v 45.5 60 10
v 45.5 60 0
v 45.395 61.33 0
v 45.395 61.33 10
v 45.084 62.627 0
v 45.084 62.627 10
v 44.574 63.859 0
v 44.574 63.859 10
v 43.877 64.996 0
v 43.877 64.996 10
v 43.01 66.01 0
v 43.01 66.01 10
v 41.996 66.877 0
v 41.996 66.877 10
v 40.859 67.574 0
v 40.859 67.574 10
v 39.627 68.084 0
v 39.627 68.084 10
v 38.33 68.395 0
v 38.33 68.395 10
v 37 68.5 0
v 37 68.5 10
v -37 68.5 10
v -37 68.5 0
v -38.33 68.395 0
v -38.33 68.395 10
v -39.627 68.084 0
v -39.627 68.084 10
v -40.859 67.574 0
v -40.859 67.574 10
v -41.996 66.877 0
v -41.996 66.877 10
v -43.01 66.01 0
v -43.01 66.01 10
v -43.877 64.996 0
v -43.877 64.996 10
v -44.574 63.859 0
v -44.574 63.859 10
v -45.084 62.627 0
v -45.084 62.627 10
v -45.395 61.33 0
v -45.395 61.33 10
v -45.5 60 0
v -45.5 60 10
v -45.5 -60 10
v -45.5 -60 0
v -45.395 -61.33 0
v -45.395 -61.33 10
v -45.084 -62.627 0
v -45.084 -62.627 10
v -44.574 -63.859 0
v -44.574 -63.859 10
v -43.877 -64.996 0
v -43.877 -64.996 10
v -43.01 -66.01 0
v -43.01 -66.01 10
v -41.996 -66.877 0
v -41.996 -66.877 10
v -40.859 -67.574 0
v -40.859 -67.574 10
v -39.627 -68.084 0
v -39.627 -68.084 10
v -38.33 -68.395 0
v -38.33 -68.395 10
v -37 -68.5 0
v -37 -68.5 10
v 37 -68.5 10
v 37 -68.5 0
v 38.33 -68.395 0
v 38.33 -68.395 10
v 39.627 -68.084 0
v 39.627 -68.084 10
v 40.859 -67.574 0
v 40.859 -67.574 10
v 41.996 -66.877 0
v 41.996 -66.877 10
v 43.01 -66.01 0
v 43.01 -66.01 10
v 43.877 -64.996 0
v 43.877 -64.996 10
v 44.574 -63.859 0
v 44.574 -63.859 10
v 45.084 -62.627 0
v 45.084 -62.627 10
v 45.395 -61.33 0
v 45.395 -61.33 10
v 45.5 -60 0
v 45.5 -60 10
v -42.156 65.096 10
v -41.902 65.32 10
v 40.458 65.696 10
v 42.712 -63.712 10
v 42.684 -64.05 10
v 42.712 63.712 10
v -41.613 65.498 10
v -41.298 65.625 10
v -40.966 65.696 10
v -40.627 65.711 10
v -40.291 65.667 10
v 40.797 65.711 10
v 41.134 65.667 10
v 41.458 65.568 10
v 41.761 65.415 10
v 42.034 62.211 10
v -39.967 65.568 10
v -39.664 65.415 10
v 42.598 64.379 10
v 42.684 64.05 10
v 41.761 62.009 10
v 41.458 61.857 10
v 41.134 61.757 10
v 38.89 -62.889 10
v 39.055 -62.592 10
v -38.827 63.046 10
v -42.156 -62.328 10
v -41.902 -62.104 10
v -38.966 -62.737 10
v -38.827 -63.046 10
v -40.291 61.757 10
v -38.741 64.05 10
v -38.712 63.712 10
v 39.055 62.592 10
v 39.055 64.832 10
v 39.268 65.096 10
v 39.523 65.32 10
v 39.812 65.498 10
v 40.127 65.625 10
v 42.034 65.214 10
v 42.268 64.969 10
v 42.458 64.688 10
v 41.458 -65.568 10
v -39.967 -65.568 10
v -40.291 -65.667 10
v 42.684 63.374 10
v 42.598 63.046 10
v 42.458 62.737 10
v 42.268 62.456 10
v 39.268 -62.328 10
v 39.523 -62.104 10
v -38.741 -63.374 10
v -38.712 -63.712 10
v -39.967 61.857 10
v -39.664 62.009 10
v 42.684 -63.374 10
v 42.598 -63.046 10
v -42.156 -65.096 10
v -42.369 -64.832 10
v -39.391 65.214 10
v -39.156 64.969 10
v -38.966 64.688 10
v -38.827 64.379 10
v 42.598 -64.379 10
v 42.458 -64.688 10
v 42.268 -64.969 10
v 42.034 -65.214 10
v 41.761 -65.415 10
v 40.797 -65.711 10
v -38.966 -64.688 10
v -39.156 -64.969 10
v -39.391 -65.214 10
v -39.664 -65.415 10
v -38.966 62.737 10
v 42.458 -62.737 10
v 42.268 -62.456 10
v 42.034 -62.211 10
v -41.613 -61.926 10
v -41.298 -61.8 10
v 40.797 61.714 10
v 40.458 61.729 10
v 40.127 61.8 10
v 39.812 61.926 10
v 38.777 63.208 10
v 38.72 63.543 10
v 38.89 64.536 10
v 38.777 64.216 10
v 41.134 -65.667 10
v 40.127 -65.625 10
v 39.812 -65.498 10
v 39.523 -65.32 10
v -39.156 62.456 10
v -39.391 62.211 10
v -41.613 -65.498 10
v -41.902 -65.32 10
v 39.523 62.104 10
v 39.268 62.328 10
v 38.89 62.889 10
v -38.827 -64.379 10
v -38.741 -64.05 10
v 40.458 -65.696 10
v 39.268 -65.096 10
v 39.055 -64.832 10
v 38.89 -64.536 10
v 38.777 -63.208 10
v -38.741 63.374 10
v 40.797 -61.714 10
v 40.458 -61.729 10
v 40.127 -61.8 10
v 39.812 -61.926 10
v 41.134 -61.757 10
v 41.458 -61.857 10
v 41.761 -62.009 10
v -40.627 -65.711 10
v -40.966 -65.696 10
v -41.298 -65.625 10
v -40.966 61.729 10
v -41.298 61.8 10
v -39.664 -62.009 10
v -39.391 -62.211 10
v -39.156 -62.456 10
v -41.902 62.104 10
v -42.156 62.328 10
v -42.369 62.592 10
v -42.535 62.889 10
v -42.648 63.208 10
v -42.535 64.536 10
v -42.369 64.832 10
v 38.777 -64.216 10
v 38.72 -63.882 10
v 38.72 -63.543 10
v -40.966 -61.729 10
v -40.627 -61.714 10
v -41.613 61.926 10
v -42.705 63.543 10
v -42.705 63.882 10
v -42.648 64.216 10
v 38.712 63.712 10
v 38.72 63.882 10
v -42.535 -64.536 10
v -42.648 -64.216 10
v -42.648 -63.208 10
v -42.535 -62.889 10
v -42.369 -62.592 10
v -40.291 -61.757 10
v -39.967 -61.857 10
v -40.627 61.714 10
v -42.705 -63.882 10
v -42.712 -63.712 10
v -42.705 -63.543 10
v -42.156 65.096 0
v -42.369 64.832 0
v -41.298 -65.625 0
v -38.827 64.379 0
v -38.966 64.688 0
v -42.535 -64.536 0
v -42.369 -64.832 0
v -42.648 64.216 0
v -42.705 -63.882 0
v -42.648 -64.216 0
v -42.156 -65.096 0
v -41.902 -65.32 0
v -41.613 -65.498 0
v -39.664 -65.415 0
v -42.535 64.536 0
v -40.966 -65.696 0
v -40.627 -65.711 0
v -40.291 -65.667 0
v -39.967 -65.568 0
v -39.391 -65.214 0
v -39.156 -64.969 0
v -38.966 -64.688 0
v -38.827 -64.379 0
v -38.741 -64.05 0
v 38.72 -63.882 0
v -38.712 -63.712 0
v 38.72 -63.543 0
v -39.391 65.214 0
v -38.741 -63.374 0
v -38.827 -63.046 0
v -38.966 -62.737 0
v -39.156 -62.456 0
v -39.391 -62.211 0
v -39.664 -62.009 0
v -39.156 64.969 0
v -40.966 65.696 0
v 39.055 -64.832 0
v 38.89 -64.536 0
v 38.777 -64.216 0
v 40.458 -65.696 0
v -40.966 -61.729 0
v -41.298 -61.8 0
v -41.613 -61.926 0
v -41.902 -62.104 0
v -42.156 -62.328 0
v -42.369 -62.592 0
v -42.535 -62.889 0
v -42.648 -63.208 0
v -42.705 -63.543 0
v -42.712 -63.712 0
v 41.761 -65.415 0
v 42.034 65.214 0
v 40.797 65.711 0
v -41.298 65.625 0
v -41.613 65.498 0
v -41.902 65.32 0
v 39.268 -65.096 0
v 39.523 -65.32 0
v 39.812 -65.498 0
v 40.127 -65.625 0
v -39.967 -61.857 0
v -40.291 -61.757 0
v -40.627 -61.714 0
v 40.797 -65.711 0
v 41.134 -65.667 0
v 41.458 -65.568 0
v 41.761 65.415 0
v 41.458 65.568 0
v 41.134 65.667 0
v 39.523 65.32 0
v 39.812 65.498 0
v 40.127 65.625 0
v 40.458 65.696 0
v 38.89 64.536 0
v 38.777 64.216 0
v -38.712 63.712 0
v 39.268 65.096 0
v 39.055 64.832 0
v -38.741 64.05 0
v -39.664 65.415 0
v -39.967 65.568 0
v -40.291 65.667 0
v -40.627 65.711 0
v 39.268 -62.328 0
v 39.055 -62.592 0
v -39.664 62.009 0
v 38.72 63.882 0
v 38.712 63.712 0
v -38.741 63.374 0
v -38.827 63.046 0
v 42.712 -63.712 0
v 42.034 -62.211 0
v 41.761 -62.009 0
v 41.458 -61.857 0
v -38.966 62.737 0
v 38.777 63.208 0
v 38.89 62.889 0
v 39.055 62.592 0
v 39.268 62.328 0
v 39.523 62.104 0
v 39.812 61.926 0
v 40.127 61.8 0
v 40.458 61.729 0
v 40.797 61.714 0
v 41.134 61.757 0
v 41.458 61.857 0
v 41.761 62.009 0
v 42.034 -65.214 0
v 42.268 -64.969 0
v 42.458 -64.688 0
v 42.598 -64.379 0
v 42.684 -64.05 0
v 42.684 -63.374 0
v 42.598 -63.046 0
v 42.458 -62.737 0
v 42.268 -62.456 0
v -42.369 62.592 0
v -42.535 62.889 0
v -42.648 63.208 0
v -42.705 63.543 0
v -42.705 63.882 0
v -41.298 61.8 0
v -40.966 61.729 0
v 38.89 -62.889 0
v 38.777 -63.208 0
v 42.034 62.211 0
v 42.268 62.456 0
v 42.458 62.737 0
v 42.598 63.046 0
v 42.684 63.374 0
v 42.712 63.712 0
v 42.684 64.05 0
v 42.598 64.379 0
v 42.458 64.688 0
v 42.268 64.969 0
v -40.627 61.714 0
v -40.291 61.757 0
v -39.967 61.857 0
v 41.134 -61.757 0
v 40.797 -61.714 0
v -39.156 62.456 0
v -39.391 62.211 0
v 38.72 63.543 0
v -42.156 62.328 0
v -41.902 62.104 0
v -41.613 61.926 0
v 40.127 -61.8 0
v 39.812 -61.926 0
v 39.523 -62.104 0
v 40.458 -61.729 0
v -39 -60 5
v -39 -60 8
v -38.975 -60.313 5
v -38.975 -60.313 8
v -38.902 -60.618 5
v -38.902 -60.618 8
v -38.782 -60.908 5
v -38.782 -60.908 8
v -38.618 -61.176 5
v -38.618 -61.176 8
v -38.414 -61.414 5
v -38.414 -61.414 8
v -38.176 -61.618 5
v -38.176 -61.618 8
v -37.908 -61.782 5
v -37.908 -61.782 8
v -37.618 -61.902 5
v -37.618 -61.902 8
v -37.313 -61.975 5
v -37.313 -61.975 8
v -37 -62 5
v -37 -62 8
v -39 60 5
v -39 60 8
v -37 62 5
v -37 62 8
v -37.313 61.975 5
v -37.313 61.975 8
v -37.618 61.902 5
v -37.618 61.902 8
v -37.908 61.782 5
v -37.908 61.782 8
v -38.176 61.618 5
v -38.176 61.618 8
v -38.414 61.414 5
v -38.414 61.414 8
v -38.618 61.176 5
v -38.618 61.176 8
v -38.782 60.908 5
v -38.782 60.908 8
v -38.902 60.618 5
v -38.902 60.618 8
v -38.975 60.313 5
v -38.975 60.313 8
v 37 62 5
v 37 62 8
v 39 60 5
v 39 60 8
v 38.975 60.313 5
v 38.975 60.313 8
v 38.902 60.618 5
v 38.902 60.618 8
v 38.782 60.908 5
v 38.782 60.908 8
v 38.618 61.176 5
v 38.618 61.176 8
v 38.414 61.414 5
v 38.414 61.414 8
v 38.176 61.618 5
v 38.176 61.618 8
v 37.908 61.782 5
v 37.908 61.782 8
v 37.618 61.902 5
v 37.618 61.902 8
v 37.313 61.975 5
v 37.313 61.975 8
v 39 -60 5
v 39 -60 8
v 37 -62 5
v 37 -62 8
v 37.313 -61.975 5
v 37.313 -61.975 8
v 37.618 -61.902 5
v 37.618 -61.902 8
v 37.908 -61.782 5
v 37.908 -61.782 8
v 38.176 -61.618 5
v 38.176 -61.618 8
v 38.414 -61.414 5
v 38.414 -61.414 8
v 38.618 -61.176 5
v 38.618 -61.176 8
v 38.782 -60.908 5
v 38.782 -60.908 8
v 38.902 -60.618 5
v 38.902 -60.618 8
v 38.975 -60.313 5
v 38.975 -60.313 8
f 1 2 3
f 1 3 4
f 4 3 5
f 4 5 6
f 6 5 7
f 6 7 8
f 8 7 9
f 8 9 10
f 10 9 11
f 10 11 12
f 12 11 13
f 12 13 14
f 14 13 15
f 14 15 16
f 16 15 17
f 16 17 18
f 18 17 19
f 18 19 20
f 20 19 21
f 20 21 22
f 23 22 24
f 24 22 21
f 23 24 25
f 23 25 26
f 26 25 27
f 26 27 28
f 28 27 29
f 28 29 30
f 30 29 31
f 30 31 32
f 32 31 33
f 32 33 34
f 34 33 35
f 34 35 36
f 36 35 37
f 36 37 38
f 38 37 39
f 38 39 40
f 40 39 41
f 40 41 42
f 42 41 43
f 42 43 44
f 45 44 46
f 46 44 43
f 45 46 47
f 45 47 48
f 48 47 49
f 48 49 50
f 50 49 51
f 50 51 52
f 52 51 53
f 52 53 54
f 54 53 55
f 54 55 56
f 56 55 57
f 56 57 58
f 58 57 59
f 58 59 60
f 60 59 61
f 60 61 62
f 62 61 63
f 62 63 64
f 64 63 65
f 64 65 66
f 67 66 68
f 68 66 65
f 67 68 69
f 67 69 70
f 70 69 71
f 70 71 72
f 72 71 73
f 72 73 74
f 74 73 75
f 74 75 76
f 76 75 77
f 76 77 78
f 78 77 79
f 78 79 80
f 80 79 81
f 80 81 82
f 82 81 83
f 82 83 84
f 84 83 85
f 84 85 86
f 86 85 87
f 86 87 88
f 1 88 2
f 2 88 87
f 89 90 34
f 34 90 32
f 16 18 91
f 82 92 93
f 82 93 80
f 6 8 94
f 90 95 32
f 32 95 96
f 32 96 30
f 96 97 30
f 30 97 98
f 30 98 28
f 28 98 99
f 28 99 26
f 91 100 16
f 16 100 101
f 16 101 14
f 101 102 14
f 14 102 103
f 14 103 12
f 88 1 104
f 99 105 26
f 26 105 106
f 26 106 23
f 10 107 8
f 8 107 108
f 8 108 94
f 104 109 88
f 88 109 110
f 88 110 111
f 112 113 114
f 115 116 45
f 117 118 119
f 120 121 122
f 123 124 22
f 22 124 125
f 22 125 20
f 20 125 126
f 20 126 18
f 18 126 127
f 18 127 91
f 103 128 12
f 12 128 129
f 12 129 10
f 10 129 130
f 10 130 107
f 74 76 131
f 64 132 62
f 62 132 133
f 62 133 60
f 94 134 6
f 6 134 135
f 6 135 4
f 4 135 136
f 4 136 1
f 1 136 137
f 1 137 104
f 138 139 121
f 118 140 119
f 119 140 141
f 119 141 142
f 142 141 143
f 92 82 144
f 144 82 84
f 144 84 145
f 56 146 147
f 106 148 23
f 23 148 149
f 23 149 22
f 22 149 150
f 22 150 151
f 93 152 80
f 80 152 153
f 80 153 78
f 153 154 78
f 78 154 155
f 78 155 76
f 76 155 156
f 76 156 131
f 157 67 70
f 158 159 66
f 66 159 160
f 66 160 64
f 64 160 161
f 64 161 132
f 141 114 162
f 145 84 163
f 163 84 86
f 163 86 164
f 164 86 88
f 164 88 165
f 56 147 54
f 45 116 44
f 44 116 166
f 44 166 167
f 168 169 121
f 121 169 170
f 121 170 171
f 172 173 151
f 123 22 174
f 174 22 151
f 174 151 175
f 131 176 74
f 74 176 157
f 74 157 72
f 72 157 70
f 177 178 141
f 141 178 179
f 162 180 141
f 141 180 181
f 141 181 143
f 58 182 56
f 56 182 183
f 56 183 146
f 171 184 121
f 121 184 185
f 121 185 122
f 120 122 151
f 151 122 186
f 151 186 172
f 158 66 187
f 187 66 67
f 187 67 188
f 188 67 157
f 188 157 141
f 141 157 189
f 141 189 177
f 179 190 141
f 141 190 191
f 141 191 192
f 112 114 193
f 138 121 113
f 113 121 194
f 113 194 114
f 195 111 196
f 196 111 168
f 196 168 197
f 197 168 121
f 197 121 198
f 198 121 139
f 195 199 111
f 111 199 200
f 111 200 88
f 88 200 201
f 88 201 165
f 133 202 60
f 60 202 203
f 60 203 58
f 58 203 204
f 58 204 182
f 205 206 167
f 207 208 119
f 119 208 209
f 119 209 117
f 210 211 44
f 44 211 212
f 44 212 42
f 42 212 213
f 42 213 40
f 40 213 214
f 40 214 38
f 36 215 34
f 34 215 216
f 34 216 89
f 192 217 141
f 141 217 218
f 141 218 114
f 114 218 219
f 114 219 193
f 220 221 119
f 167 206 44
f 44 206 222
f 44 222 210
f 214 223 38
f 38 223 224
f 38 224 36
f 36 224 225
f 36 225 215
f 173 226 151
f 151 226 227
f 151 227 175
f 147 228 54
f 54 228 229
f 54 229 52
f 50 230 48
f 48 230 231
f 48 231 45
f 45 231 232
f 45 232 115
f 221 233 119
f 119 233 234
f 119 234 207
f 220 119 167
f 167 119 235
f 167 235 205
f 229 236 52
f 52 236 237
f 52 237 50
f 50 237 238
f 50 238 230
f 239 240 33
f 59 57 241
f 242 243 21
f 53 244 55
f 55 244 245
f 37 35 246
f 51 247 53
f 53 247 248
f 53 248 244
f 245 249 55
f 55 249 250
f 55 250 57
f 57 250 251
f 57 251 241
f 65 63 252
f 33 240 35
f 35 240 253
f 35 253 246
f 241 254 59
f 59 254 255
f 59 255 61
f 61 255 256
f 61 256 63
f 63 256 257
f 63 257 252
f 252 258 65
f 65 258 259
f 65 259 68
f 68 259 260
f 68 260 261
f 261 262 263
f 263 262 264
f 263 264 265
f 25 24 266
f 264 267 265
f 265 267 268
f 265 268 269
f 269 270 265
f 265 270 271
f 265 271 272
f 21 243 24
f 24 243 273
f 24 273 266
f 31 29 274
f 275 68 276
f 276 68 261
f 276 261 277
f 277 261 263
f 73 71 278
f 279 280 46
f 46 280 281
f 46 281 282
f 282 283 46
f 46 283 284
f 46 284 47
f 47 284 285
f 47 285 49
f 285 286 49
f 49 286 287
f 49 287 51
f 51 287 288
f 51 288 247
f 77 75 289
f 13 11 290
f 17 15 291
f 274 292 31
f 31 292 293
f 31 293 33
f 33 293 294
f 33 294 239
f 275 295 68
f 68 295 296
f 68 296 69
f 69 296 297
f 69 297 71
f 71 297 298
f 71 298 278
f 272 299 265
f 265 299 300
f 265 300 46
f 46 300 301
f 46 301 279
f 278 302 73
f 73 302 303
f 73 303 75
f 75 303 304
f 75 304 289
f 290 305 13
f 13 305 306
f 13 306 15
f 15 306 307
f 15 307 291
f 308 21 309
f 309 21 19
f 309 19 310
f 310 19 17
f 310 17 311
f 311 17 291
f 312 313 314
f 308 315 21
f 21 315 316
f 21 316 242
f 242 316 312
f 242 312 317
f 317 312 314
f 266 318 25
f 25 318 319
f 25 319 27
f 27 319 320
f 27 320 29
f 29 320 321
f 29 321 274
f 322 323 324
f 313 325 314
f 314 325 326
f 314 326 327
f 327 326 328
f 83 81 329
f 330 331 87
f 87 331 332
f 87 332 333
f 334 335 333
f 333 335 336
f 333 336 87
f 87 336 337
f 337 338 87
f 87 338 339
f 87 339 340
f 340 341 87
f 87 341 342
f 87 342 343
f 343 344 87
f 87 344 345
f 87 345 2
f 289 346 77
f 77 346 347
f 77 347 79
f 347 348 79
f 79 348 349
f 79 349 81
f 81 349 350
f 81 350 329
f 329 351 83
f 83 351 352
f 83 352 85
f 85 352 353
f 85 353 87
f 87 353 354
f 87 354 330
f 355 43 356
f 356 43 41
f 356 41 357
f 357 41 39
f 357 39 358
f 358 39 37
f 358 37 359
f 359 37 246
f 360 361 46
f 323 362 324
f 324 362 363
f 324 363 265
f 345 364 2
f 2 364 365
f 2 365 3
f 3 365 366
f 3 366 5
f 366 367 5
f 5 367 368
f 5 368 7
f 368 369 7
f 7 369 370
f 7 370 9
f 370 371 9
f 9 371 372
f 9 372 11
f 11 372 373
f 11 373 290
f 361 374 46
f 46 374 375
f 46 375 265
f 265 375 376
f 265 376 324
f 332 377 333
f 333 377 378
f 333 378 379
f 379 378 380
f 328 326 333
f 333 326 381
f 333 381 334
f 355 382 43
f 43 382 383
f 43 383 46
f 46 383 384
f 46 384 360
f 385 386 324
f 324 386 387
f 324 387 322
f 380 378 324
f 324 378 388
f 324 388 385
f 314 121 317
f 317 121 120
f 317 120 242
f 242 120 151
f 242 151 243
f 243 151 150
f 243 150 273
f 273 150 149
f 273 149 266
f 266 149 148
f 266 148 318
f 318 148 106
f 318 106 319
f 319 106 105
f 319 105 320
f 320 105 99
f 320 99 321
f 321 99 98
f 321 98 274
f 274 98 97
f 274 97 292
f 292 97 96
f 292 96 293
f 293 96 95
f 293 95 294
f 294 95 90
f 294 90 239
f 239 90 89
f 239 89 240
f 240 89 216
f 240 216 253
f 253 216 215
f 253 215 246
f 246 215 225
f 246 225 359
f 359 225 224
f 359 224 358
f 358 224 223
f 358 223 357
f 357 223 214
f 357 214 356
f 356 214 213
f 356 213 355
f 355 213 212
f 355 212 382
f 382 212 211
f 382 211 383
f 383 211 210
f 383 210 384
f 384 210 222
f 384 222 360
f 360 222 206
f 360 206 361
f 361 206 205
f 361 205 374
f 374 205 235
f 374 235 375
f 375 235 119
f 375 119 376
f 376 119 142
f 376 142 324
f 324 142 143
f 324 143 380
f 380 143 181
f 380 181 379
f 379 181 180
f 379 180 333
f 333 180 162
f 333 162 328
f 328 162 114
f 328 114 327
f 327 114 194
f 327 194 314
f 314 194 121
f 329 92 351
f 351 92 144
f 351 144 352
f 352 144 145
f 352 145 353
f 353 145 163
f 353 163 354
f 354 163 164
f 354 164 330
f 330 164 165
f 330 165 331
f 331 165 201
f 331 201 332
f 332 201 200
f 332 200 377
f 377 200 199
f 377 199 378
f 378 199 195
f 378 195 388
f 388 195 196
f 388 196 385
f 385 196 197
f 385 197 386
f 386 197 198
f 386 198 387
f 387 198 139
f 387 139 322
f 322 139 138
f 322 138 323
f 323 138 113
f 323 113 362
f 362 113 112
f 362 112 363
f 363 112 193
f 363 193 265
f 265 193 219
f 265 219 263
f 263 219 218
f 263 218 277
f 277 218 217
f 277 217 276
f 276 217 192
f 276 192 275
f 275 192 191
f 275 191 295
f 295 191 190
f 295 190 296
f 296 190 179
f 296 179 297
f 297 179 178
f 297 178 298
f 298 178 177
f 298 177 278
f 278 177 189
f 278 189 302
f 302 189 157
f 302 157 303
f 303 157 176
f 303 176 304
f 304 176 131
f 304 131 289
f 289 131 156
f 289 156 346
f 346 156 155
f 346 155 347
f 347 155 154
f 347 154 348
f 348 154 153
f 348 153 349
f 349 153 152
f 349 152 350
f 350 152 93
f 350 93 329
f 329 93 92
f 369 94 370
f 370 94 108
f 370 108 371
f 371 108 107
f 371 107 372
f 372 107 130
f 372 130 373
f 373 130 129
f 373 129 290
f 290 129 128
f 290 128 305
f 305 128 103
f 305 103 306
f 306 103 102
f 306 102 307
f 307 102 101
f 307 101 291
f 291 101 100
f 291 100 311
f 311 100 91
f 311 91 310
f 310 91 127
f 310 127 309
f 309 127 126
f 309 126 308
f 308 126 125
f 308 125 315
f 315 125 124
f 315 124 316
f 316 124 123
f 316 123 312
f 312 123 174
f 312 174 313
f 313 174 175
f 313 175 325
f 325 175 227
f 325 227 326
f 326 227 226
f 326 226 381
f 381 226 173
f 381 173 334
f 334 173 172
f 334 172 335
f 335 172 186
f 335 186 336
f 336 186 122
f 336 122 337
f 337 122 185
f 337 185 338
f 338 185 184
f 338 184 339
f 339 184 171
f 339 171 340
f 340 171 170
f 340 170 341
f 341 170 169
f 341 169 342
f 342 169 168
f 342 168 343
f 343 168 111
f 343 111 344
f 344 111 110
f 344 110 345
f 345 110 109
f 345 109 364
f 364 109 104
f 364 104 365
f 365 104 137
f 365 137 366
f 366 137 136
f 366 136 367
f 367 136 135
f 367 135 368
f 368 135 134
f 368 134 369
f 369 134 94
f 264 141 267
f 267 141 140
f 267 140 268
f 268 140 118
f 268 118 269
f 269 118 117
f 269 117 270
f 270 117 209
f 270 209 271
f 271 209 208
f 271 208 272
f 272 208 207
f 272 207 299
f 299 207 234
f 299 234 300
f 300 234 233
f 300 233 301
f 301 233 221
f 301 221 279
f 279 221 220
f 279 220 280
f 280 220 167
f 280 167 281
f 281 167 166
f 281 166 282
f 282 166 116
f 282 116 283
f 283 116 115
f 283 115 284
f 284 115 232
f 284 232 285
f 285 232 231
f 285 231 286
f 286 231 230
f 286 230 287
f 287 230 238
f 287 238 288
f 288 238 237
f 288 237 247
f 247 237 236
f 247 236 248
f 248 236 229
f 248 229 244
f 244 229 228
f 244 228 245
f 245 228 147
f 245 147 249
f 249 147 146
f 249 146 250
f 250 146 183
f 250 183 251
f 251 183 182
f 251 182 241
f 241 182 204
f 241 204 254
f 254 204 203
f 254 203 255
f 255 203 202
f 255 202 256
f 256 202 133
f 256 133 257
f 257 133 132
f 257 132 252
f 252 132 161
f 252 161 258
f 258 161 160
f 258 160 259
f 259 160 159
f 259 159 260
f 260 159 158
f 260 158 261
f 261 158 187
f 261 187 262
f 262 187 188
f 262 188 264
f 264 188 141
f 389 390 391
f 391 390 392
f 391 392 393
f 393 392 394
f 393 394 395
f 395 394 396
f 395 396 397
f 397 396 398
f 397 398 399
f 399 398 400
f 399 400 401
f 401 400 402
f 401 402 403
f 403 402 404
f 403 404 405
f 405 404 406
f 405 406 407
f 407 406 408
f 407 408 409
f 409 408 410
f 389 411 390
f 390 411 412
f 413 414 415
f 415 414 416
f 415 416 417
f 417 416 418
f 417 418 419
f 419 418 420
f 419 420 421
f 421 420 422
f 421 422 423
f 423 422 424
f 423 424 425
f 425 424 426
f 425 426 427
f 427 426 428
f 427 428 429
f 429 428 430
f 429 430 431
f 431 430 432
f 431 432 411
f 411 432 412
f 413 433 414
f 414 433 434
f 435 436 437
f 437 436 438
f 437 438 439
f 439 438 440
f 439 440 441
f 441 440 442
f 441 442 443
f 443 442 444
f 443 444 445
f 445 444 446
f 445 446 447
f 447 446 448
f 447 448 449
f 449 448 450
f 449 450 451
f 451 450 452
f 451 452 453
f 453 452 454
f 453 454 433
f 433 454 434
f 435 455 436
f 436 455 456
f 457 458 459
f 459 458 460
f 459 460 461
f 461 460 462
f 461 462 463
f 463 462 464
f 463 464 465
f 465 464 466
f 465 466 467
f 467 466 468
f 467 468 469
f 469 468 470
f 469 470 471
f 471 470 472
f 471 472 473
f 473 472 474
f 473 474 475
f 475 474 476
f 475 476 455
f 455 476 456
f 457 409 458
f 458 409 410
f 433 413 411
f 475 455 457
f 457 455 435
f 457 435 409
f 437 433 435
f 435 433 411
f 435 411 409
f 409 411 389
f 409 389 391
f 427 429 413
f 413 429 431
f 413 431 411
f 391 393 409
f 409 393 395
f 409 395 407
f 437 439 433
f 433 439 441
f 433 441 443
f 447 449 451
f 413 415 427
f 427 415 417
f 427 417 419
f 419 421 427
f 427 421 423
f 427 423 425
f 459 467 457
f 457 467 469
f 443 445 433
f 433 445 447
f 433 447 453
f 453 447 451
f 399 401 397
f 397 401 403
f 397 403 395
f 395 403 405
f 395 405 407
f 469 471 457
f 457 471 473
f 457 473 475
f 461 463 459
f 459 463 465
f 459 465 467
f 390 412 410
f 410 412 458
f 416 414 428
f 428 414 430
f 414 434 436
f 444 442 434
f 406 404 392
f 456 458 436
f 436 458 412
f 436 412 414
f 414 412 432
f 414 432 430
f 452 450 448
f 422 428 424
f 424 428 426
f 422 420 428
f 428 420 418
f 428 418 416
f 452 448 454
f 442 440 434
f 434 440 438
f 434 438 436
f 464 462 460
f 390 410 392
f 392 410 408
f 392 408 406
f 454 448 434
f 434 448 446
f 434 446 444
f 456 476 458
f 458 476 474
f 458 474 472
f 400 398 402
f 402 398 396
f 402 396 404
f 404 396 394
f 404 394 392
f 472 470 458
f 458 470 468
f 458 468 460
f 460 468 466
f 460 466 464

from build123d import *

# Parameters (mm, degrees)
CASE_2_DEPTH            = 10
INTERNAL_START          = -2
INTERNAL_SLOT_DEPTH     = 3
CUT_EXTRUDE1_DEPTH      = 83.840207629
CUT_EXTRUDE1_DEPTH_BACK = 83.840207629
SKETCH3_R               = 2


with BuildPart() as part:
    # Sketch1 → Case 2 (new body)
    with BuildSketch(Plane(origin=(0, 0, 0), x_dir=(0, 1, 0), z_dir=(0, 0, 1))):
        with BuildLine():
            Line((-60, -45.5), (60, -45.5))
            ThreePointArc((60, -45.5), (66.01040764, -43.01040764), (68.5, -37))
            Line((68.5, -37), (68.5, 37))
            ThreePointArc((68.5, 37), (66.01040764, 43.01040764), (60, 45.5))
            Line((60, 45.5), (-60, 45.5))
            ThreePointArc((-60, 45.5), (-66.01040764, 43.01040764), (-68.5, 37))
            Line((-68.5, 37), (-68.5, -37))
            ThreePointArc((-68.5, -37), (-66.01040764, -43.01040764), (-60, -45.5))
        make_face()
    extrude(amount=CASE_2_DEPTH)

    # Sketch2 → internal slot (cut)
    with BuildSketch(Plane.XY.offset(10).offset(INTERNAL_START)):
        with BuildLine():
            Line((-37, -62), (37, -62))
            ThreePointArc((37, -62), (38.414213562, -61.414213562), (39, -60))
            Line((39, -60), (39, 60))
            ThreePointArc((39, 60), (38.414213562, 61.414213562), (37, 62))
            Line((37, 62), (-37, 62))
            ThreePointArc((-37, 62), (-38.414213562, 61.414213562), (-39, 60))
            Line((-39, 60), (-39, -60))
            ThreePointArc((-39, -60), (-38.414213562, -61.414213562), (-37, -62))
        make_face()
    extrude(amount=-INTERNAL_SLOT_DEPTH, mode=Mode.SUBTRACT)

    # Sketch3 → Cut-Extrude1 (cut, two sides: drawn at the far end of the back side and taken through both)
    with BuildSketch(Plane.XY.offset(10).offset(-CUT_EXTRUDE1_DEPTH_BACK)):
        with Locations((-40.712310601, 63.712310601)):
            Circle(SKETCH3_R)
        with Locations(Location((-40.712310601, -63.712310601, 0), (0, 0, 180))):
            Circle(SKETCH3_R)
        with Locations(Location((40.712310601, 63.712310601, 0), (0, 0, 180))):
            Circle(SKETCH3_R)
        with Locations((40.712310601, -63.712310601)):
            Circle(SKETCH3_R)
    extrude(amount=CUT_EXTRUDE1_DEPTH + CUT_EXTRUDE1_DEPTH_BACK, mode=Mode.SUBTRACT)


solid = part.part
